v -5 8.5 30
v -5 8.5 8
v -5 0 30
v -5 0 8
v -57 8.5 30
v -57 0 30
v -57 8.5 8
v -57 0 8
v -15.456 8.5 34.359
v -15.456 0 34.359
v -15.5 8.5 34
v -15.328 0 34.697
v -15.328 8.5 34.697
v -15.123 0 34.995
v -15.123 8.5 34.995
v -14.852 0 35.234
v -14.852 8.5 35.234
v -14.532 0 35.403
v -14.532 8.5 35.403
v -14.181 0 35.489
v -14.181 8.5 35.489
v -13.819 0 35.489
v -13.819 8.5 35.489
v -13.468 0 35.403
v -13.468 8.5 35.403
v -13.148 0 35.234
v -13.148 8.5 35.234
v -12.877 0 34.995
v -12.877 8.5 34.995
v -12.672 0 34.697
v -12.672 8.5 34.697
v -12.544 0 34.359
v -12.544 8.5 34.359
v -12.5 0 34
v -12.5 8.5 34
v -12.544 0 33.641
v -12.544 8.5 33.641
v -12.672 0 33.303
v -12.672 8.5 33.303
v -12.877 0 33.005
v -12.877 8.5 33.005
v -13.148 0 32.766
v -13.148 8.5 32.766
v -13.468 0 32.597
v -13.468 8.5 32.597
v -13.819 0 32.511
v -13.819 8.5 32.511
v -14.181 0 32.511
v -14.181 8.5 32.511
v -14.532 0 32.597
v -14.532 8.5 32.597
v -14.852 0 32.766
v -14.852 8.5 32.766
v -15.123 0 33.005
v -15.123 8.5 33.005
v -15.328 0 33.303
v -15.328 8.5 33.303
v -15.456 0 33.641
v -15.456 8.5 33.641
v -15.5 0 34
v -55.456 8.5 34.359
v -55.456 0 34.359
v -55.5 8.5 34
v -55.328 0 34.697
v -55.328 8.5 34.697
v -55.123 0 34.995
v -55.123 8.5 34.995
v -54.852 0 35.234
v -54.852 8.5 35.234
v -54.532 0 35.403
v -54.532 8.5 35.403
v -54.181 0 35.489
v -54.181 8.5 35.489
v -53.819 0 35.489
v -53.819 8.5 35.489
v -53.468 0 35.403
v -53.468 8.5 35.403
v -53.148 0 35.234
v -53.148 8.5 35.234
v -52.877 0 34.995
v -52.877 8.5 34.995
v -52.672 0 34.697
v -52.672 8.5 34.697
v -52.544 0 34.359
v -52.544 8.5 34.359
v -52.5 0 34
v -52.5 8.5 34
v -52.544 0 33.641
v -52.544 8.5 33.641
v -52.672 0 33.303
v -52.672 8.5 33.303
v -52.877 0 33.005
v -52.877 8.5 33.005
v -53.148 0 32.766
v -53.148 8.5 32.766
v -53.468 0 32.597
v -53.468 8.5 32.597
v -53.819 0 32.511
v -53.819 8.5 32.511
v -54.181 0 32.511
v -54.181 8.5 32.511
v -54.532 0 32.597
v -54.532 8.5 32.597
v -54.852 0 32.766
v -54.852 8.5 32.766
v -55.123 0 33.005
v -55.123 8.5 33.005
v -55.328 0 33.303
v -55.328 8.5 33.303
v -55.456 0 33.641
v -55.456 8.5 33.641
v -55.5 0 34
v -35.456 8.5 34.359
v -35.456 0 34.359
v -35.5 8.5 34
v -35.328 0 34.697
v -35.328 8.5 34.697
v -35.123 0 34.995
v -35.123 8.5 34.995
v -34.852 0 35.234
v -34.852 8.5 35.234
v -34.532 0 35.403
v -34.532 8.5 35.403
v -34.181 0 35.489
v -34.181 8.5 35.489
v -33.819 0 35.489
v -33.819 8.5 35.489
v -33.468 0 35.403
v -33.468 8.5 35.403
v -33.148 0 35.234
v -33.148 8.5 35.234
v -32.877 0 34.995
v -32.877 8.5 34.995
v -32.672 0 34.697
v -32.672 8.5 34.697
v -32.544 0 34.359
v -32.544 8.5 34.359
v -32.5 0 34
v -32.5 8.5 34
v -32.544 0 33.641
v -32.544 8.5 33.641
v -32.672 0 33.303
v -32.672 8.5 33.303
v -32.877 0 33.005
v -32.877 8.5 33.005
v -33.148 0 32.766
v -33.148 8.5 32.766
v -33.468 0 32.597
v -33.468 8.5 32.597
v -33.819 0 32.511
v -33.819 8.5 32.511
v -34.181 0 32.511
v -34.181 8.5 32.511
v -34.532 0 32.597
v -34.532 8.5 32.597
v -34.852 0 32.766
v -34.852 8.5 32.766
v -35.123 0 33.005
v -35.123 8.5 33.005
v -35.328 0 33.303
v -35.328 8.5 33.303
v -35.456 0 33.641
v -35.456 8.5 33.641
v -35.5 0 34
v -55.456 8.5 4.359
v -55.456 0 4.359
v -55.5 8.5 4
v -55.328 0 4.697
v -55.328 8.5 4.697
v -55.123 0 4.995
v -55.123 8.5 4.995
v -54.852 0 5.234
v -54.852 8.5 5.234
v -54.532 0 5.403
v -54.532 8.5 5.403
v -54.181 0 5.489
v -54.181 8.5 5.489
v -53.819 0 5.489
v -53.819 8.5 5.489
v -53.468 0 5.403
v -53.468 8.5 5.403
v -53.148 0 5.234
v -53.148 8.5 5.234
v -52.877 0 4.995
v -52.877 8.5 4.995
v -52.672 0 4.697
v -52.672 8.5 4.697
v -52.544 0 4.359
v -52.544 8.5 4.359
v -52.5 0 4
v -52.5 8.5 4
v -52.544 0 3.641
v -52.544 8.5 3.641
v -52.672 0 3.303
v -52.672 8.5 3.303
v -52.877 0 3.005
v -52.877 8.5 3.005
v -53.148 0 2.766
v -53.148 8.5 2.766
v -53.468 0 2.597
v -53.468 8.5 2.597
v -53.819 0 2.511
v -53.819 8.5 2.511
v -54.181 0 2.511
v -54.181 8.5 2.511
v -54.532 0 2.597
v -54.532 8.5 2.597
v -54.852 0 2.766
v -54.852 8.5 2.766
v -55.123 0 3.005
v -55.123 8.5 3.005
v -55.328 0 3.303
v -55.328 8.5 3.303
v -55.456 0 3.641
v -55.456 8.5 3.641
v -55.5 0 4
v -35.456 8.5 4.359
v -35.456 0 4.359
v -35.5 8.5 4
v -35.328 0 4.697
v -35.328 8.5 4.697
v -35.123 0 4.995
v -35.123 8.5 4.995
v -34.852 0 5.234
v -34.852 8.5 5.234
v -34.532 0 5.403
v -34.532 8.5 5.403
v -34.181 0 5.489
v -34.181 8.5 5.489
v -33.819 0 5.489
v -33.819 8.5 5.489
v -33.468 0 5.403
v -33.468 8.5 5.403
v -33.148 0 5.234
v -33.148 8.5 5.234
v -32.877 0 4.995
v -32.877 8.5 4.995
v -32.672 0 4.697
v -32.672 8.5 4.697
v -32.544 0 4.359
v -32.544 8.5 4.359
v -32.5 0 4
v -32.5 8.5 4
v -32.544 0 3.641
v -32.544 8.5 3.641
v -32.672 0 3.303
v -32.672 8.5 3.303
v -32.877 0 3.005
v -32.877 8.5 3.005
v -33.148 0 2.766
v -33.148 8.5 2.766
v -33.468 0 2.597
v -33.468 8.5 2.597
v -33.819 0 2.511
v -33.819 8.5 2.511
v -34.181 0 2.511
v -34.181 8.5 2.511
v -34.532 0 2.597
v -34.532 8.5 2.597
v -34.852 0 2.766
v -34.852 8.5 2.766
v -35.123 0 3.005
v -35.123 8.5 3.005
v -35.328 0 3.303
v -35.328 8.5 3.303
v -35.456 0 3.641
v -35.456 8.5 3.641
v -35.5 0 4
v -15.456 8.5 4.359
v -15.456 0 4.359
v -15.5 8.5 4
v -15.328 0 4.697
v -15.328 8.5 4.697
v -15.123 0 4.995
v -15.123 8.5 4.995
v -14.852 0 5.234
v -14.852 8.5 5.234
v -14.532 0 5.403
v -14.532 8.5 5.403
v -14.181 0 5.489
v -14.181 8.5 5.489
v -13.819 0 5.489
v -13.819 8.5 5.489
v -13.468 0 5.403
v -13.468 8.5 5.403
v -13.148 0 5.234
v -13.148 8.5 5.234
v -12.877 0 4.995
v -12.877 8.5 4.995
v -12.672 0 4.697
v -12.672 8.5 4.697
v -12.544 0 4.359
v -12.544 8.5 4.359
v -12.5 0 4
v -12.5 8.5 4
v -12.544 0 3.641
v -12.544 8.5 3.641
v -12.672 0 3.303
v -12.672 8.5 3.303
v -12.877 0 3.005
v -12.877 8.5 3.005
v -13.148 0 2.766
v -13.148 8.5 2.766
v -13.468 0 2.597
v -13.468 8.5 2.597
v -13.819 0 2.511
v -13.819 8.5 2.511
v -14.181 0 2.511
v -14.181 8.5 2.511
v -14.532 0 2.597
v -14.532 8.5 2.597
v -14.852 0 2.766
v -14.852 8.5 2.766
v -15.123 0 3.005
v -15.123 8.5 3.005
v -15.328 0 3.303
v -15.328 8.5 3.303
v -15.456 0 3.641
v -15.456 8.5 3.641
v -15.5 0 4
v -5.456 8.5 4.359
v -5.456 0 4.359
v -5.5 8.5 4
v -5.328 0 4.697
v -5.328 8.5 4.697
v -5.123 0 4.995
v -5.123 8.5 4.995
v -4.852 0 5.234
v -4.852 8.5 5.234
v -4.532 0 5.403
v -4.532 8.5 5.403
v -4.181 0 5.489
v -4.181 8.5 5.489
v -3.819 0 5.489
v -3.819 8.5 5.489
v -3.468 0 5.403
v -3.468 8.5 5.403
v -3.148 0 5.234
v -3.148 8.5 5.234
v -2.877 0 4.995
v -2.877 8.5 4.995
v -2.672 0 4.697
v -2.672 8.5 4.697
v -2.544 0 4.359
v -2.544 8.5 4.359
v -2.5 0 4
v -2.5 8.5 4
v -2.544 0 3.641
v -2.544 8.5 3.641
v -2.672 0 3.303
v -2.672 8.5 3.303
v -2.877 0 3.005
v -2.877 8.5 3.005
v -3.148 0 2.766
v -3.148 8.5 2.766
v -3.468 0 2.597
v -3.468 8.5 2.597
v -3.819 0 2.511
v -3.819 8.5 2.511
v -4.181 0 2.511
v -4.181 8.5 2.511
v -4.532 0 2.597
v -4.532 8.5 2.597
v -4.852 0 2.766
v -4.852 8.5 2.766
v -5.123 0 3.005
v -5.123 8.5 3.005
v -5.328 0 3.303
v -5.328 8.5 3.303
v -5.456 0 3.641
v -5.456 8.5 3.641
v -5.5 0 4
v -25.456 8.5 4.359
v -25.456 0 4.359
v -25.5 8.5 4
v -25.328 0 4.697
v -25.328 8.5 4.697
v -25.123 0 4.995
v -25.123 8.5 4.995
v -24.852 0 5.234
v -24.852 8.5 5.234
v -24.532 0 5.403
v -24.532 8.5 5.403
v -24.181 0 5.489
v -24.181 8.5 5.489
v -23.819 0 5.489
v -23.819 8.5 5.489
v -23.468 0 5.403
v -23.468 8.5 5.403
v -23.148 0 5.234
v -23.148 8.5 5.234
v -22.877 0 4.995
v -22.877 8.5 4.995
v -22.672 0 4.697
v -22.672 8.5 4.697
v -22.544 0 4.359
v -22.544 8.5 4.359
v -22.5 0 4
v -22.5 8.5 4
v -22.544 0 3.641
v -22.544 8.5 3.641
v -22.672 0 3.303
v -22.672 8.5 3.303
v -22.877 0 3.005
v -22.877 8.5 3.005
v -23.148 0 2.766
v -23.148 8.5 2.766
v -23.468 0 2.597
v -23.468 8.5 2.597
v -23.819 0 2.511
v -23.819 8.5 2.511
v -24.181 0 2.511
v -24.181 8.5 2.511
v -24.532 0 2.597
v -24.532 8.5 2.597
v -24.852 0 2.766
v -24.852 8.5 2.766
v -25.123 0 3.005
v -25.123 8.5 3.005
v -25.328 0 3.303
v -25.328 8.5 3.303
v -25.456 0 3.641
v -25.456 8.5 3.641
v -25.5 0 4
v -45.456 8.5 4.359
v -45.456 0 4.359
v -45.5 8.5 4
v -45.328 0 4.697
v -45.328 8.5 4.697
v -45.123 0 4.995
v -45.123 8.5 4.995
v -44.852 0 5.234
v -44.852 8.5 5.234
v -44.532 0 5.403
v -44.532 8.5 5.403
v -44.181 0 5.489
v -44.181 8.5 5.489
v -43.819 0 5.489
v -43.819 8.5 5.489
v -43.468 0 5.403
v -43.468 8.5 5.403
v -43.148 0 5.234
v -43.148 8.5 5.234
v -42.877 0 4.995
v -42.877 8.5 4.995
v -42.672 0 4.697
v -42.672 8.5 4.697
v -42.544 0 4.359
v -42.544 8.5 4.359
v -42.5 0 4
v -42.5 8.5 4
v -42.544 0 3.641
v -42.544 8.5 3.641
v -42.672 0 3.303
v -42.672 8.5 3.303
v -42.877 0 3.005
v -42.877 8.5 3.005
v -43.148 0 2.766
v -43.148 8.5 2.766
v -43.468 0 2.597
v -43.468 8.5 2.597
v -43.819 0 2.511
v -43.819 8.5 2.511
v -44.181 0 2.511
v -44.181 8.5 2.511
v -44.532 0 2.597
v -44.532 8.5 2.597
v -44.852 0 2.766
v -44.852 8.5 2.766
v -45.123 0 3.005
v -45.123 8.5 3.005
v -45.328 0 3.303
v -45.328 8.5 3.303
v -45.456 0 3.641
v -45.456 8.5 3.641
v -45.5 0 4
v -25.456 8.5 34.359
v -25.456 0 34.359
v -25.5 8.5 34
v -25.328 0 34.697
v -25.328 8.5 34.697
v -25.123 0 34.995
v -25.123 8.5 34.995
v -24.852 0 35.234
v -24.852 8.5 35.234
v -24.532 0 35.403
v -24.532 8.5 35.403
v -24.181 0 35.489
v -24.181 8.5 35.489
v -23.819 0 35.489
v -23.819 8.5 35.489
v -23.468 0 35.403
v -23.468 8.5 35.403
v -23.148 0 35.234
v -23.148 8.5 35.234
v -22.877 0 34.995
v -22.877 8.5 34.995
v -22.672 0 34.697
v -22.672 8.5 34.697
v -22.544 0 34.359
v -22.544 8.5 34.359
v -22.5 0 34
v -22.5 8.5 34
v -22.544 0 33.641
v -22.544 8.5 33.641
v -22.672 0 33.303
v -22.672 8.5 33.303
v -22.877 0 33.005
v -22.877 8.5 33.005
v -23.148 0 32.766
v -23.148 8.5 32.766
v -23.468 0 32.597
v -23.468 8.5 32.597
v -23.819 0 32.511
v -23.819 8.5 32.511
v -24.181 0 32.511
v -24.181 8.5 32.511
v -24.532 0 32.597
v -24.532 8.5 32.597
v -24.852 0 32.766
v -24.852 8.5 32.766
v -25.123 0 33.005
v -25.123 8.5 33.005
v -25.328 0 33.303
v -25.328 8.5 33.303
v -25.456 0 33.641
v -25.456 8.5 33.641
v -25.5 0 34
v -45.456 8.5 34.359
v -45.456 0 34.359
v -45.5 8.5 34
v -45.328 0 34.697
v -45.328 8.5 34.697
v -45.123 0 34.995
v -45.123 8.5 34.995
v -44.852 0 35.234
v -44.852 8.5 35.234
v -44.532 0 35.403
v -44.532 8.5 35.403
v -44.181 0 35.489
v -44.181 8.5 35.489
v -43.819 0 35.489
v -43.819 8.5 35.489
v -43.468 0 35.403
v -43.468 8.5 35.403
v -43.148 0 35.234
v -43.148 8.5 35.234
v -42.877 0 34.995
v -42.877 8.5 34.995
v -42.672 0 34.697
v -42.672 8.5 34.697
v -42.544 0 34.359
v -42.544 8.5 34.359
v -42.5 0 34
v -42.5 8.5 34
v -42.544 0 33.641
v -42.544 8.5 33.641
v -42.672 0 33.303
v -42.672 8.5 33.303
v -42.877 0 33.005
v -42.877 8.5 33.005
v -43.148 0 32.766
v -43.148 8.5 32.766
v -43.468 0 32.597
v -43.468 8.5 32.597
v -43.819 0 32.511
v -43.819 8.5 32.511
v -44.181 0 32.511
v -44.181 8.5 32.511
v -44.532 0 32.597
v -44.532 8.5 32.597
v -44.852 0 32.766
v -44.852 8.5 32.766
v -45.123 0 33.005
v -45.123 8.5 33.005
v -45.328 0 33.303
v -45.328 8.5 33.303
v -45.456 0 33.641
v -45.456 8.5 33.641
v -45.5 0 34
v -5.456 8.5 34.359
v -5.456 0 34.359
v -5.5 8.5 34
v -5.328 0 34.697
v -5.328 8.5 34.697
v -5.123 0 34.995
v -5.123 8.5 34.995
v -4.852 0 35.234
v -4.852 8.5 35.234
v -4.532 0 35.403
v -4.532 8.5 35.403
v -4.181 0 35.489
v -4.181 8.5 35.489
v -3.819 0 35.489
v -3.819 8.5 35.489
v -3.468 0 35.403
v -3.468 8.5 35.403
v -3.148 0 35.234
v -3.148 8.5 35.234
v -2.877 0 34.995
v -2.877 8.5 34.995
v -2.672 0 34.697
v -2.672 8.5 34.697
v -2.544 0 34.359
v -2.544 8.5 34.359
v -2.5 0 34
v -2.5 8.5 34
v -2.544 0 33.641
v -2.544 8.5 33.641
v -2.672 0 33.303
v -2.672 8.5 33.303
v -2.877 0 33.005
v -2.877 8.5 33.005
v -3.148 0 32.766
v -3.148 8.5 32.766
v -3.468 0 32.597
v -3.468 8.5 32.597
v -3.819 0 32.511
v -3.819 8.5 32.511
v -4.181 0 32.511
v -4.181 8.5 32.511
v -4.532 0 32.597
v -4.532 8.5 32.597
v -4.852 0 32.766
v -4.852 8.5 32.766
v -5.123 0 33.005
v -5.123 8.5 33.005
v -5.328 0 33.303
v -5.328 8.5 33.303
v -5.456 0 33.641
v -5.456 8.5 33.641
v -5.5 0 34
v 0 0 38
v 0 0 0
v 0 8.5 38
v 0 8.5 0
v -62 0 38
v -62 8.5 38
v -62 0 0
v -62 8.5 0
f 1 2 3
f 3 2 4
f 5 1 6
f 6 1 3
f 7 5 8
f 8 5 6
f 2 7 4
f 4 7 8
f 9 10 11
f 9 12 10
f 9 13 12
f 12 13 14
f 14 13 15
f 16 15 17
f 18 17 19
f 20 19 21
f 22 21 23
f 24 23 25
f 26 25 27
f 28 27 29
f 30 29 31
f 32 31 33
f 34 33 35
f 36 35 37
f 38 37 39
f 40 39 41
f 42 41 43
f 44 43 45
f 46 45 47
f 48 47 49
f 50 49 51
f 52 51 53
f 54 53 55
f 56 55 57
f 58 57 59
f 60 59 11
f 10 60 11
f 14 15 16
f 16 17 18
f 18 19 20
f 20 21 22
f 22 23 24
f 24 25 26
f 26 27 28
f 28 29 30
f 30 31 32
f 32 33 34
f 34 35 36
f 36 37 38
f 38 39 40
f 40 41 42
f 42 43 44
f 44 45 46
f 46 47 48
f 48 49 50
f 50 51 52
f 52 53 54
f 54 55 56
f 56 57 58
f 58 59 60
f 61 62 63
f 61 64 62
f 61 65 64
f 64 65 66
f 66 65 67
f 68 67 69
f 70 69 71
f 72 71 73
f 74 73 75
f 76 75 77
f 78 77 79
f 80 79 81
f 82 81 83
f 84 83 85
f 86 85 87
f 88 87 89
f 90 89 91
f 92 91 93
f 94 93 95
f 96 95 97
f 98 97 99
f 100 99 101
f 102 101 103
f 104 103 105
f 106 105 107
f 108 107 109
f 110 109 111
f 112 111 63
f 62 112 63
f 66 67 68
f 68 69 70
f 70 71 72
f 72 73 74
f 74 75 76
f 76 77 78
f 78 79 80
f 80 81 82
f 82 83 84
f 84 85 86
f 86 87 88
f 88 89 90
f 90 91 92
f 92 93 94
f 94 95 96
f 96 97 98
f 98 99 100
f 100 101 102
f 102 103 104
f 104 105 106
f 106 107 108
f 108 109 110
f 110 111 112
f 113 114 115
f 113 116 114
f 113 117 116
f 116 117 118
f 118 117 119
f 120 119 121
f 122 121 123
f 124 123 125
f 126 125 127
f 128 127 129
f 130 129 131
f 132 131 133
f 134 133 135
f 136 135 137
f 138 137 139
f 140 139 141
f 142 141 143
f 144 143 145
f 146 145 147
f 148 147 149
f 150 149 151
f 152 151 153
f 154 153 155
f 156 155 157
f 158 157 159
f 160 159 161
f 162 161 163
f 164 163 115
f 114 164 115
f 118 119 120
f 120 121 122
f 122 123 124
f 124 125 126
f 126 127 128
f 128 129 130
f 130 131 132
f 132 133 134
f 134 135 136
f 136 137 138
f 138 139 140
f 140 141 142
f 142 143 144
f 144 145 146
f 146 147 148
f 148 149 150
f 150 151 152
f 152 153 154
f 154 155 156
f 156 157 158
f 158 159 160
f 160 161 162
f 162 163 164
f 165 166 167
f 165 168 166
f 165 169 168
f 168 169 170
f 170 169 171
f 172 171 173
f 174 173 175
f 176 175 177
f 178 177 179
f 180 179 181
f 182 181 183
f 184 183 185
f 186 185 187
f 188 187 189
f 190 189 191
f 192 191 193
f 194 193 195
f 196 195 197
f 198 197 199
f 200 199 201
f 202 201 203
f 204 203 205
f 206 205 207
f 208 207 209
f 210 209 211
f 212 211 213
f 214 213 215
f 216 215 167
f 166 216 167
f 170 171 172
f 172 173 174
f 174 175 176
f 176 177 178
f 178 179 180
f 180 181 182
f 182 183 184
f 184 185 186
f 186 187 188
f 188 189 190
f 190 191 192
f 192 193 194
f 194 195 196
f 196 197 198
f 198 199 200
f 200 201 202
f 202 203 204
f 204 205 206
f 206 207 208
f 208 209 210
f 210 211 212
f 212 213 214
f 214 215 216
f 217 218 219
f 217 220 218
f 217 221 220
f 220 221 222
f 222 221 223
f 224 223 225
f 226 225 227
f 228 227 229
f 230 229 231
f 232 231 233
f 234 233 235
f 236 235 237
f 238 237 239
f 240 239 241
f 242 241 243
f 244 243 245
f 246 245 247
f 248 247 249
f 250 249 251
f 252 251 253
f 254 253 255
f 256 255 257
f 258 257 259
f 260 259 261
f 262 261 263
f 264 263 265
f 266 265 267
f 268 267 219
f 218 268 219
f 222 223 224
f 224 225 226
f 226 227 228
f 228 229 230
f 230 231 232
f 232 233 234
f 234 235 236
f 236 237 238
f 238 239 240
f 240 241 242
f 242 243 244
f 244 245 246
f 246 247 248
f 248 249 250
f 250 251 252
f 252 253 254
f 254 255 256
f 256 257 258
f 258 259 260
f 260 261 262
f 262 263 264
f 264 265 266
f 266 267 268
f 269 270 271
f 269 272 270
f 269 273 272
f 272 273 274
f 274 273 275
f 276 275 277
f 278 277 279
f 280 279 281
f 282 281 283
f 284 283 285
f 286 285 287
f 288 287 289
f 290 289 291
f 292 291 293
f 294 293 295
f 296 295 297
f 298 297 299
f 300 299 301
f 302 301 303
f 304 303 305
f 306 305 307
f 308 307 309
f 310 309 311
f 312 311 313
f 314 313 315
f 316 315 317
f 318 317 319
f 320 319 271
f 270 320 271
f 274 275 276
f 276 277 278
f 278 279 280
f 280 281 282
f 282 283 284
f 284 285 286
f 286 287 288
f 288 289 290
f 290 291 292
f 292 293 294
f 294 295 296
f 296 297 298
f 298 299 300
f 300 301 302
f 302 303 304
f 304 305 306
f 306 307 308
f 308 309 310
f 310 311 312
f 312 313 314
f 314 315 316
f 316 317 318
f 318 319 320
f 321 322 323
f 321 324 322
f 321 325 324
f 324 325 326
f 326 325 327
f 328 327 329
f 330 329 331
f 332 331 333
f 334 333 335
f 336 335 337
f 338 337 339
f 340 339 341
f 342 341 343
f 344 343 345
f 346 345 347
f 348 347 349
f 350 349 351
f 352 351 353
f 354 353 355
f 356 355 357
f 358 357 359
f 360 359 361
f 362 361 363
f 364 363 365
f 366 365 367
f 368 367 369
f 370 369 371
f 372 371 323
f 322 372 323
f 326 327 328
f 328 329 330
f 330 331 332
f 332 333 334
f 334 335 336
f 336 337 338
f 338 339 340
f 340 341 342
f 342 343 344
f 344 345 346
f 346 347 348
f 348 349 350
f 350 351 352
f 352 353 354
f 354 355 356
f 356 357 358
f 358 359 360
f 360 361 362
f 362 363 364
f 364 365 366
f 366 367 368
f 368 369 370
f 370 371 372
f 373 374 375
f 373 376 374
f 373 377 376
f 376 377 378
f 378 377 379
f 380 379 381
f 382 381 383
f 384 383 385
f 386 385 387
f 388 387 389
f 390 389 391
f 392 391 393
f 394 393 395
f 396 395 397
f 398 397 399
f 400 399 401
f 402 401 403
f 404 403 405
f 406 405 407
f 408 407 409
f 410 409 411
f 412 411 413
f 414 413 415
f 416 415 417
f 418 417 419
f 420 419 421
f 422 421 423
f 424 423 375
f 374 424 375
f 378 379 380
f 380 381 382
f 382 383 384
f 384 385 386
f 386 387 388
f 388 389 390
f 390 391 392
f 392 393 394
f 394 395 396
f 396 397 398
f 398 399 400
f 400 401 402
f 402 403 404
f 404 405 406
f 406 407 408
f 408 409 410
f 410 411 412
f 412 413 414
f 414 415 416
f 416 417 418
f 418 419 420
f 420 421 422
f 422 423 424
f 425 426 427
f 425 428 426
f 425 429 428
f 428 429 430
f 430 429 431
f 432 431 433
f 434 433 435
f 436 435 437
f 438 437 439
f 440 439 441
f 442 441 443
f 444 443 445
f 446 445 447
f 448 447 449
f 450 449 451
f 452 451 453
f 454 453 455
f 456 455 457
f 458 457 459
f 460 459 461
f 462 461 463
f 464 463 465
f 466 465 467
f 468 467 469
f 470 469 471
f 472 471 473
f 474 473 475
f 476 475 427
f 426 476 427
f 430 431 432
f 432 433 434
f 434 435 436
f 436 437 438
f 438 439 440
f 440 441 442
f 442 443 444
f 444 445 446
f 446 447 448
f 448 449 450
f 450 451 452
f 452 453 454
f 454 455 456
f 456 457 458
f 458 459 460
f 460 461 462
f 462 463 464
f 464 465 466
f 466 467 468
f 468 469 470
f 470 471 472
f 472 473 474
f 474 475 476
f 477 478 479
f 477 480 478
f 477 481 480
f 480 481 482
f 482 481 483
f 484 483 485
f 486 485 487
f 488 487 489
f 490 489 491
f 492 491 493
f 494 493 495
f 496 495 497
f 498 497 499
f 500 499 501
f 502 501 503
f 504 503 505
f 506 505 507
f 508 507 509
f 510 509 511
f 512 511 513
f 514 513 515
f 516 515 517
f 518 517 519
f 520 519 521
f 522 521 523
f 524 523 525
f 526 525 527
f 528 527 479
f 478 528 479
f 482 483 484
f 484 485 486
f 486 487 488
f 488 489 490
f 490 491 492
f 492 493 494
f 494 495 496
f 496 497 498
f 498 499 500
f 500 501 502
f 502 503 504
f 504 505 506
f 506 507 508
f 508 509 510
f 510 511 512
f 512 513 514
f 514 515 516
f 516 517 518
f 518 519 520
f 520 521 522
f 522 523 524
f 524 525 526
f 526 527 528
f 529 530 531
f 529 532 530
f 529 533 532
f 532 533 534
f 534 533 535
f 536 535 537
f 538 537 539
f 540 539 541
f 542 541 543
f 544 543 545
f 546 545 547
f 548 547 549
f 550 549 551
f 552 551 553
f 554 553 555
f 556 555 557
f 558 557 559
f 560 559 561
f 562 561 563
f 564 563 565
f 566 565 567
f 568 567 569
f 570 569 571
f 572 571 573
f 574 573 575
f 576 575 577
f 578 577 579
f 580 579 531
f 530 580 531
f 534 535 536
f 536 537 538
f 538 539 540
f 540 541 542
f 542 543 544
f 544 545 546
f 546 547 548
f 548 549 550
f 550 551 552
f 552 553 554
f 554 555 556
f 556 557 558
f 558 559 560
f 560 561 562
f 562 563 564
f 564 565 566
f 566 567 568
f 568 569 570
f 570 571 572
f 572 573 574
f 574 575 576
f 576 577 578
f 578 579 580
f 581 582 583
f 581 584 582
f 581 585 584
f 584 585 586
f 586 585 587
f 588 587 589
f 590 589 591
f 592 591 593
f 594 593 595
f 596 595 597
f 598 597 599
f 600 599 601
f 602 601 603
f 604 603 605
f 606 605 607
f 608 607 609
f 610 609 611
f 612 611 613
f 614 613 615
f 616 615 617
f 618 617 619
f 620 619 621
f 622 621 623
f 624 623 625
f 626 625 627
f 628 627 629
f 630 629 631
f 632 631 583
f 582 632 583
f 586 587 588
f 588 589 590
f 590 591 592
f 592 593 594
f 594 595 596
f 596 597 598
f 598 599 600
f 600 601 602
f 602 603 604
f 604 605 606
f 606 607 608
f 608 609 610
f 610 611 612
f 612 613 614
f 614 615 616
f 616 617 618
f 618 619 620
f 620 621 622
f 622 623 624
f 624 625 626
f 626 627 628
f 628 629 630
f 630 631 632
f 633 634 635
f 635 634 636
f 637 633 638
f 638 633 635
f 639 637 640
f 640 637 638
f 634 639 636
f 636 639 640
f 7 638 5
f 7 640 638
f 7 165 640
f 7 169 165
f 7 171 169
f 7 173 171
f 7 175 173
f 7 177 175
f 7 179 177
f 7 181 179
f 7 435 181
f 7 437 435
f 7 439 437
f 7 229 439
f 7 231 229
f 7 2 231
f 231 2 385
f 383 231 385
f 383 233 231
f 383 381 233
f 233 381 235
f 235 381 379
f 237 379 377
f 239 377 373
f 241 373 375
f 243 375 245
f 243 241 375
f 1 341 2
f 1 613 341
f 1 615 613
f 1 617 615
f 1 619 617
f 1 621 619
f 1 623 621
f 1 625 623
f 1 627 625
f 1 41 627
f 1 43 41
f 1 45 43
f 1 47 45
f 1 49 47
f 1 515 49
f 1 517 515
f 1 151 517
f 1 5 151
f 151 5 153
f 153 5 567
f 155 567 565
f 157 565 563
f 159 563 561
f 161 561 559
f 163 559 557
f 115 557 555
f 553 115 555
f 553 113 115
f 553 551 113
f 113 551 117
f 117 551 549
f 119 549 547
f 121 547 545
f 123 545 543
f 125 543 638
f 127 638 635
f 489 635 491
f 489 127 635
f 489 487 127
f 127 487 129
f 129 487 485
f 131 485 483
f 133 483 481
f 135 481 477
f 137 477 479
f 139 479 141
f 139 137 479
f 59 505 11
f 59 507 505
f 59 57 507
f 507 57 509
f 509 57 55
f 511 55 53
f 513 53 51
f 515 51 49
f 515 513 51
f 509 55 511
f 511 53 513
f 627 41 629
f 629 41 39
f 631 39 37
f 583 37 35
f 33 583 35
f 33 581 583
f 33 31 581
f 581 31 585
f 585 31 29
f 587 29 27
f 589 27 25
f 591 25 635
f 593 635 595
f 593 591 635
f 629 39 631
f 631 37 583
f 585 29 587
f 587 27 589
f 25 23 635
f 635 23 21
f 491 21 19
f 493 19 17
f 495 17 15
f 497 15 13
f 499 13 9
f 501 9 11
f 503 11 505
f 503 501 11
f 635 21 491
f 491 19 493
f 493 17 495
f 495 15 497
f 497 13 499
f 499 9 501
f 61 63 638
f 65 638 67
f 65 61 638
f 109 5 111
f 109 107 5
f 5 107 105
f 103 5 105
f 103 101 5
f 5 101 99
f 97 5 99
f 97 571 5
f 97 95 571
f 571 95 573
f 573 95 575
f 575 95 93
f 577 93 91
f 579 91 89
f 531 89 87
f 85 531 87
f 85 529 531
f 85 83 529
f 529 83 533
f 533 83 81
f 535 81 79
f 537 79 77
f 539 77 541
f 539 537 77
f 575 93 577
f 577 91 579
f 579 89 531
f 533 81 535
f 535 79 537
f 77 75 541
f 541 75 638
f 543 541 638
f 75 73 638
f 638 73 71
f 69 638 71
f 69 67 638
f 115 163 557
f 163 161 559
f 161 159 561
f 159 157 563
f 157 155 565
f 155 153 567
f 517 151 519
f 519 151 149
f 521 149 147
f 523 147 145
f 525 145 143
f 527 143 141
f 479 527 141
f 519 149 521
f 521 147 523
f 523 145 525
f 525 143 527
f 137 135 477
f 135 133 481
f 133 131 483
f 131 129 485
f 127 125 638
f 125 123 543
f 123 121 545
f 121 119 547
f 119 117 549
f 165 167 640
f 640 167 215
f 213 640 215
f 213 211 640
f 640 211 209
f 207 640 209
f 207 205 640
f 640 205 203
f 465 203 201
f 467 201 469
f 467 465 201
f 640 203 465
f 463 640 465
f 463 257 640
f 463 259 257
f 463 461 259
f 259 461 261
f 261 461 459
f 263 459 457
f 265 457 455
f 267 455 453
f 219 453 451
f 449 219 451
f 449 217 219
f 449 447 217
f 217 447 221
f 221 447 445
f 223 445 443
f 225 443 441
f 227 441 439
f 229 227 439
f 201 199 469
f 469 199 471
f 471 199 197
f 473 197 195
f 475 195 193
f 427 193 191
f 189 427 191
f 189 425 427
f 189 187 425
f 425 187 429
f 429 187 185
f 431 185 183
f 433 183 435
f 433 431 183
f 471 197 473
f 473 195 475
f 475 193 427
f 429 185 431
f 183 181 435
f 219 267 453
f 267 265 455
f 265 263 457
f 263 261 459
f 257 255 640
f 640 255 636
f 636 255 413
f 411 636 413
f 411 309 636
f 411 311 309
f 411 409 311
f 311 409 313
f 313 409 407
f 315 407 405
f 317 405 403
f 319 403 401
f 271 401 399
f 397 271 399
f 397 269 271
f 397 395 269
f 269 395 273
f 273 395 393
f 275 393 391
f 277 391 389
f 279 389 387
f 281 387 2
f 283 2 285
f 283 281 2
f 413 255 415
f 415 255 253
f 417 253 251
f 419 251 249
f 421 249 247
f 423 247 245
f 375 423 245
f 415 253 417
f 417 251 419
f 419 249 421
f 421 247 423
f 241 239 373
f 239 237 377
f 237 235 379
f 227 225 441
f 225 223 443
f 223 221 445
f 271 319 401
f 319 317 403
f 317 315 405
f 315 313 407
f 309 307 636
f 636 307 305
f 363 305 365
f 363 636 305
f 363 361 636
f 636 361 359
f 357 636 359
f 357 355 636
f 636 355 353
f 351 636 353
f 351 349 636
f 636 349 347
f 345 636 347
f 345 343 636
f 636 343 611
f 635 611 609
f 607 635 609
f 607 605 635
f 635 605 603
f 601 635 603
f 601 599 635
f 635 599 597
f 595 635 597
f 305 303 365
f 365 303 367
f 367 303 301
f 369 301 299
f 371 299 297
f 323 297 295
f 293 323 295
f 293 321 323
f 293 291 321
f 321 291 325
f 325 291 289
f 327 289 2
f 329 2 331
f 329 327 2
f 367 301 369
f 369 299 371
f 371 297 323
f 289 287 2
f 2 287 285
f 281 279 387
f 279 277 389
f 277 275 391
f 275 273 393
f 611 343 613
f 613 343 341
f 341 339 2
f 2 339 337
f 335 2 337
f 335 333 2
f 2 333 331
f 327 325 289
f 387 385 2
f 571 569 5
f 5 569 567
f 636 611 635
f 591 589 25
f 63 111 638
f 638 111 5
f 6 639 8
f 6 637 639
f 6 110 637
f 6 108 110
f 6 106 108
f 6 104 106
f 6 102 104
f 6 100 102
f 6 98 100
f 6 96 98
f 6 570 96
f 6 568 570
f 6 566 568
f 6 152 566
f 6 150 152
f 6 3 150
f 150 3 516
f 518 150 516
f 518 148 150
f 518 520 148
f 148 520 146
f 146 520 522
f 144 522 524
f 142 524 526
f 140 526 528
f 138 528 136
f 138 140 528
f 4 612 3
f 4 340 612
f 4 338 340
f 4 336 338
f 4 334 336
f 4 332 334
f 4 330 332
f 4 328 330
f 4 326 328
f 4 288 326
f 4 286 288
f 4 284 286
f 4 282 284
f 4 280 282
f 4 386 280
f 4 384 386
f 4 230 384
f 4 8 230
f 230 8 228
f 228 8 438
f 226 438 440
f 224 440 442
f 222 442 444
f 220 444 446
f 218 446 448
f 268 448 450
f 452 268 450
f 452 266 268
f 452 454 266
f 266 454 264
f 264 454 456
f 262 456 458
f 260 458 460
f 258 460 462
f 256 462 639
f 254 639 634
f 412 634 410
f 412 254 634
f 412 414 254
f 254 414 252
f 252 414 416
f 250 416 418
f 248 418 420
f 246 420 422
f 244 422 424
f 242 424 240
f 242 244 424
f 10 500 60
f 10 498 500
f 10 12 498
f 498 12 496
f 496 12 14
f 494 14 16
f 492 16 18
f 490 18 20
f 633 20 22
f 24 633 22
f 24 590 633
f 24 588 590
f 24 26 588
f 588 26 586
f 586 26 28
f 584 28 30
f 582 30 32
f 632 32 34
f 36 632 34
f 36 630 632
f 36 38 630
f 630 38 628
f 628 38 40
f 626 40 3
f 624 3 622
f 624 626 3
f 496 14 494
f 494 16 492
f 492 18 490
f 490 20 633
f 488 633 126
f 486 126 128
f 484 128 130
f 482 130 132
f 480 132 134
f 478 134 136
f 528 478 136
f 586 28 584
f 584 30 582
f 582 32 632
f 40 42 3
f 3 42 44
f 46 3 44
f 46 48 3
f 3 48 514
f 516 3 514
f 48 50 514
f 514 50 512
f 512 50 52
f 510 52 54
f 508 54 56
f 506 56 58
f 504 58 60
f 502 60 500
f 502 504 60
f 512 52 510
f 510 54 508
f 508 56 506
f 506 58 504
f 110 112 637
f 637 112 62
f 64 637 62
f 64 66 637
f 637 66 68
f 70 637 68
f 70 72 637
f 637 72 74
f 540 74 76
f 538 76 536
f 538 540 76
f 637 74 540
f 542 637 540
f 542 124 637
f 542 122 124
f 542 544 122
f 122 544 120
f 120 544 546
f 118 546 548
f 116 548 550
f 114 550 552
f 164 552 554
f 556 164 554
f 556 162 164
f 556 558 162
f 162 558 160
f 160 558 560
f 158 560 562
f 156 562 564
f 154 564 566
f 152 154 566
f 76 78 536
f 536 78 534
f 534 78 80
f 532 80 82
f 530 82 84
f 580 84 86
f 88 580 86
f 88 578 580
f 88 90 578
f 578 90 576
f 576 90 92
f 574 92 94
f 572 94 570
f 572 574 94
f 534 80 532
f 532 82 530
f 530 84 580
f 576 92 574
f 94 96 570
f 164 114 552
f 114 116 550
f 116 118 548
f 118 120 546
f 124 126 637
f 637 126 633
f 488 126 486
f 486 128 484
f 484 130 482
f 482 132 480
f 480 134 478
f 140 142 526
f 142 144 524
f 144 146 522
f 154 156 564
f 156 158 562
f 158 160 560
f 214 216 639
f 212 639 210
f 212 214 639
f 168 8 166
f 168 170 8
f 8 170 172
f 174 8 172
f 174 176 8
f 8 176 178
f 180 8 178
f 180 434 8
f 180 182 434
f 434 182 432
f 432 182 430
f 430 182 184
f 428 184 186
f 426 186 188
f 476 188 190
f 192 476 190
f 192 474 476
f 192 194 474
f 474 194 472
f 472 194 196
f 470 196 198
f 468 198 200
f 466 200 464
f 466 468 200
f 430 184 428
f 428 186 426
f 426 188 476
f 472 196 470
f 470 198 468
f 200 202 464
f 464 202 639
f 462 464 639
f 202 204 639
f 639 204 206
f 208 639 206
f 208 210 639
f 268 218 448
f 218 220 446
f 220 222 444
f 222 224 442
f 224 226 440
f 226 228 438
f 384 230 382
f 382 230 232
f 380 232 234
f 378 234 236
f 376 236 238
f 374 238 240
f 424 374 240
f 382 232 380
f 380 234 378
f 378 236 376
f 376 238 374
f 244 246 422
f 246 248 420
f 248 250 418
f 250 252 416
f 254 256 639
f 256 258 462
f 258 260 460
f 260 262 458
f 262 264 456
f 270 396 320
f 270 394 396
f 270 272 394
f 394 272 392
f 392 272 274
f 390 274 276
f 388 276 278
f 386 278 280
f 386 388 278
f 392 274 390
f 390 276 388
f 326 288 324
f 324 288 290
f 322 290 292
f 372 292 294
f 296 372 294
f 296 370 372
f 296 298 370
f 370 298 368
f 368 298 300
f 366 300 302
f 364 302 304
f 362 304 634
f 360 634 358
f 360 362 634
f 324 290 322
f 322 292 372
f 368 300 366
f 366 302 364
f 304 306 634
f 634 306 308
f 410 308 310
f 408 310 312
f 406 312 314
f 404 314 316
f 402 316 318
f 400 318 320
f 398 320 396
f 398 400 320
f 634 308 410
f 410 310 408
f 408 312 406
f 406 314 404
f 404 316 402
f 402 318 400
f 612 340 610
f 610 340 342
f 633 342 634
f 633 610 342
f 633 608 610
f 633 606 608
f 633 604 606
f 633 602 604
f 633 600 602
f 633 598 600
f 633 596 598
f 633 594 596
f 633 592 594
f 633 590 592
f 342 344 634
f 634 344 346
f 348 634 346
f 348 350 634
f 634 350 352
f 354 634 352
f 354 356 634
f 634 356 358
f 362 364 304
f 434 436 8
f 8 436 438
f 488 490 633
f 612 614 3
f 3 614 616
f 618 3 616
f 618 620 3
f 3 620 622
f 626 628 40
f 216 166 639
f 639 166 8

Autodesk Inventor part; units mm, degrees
ref_plane "YZ Plane" through (0, 0, 0) normal (1, 0, 0) x (0, 1, 0)
ref_plane "XZ Plane" through (0, 0, 0) normal (0, 1, 0) x (-1, 0, 0)
ref_plane "XY Plane" through (0, 0, 0) normal (0, 0, 1) x (1, 0, 0)
sketch "スケッチ1" plane through (0, 0, 0) normal (0, 1, 0) x (-1, 0, 0)
  circle A0 centre (4, 34) radius 1.5
  circle A1 centre (44, 34) radius 1.5
  circle A2 centre (24, 34) radius 1.5
  circle A3 centre (44, 4) radius 1.5
  circle A4 centre (24, 4) radius 1.5
  circle A5 centre (4, 4) radius 1.5
  circle A6 centre (14, 4) radius 1.5
  circle A7 centre (34, 4) radius 1.5
  circle A8 centre (54, 4) radius 1.5
  circle A9 centre (34, 34) radius 1.5
  circle A10 centre (54, 34) radius 1.5
  circle A11 centre (14, 34) radius 1.5
  line L0 (0, 0) -> (62, 0)
  line L1 (62, 0) -> (62, 38)
  line L2 (62, 38) -> (0, 38)
  line L3 (0, 38) -> (0, 0)
extrude "押し出し1" add sketch "スケッチ1" along normal blind 8.5
sketch "スケッチ2" plane through (0, 0, 0) normal (0, -1, 0) x (1, 0, 0)
  line L0 (0, 0) -> (-62, 0) projected
  line L1 (0, 38) -> (0, 0) projected
  line L2 (-62, 38) -> (0, 38) projected
  line L3 (-62, 0) -> (-62, 38) projected
  line L4 (-57, 30) -> (-5, 30)
  line L5 (-5, 30) -> (-5, 8)
  line L6 (-5, 8) -> (-57, 8)
  line L7 (-57, 8) -> (-57, 30)
  dimension "d2" = 5
  dimension "d3" = 5
  dimension "d4" = 8
  dimension "d5" = 8
extrude "押し出し2" cut sketch "スケッチ2" against normal through all contours L4 L5 L6 L7
properties part number "知能ロボコンタミヤギアモータ用マウントスペーサ"
